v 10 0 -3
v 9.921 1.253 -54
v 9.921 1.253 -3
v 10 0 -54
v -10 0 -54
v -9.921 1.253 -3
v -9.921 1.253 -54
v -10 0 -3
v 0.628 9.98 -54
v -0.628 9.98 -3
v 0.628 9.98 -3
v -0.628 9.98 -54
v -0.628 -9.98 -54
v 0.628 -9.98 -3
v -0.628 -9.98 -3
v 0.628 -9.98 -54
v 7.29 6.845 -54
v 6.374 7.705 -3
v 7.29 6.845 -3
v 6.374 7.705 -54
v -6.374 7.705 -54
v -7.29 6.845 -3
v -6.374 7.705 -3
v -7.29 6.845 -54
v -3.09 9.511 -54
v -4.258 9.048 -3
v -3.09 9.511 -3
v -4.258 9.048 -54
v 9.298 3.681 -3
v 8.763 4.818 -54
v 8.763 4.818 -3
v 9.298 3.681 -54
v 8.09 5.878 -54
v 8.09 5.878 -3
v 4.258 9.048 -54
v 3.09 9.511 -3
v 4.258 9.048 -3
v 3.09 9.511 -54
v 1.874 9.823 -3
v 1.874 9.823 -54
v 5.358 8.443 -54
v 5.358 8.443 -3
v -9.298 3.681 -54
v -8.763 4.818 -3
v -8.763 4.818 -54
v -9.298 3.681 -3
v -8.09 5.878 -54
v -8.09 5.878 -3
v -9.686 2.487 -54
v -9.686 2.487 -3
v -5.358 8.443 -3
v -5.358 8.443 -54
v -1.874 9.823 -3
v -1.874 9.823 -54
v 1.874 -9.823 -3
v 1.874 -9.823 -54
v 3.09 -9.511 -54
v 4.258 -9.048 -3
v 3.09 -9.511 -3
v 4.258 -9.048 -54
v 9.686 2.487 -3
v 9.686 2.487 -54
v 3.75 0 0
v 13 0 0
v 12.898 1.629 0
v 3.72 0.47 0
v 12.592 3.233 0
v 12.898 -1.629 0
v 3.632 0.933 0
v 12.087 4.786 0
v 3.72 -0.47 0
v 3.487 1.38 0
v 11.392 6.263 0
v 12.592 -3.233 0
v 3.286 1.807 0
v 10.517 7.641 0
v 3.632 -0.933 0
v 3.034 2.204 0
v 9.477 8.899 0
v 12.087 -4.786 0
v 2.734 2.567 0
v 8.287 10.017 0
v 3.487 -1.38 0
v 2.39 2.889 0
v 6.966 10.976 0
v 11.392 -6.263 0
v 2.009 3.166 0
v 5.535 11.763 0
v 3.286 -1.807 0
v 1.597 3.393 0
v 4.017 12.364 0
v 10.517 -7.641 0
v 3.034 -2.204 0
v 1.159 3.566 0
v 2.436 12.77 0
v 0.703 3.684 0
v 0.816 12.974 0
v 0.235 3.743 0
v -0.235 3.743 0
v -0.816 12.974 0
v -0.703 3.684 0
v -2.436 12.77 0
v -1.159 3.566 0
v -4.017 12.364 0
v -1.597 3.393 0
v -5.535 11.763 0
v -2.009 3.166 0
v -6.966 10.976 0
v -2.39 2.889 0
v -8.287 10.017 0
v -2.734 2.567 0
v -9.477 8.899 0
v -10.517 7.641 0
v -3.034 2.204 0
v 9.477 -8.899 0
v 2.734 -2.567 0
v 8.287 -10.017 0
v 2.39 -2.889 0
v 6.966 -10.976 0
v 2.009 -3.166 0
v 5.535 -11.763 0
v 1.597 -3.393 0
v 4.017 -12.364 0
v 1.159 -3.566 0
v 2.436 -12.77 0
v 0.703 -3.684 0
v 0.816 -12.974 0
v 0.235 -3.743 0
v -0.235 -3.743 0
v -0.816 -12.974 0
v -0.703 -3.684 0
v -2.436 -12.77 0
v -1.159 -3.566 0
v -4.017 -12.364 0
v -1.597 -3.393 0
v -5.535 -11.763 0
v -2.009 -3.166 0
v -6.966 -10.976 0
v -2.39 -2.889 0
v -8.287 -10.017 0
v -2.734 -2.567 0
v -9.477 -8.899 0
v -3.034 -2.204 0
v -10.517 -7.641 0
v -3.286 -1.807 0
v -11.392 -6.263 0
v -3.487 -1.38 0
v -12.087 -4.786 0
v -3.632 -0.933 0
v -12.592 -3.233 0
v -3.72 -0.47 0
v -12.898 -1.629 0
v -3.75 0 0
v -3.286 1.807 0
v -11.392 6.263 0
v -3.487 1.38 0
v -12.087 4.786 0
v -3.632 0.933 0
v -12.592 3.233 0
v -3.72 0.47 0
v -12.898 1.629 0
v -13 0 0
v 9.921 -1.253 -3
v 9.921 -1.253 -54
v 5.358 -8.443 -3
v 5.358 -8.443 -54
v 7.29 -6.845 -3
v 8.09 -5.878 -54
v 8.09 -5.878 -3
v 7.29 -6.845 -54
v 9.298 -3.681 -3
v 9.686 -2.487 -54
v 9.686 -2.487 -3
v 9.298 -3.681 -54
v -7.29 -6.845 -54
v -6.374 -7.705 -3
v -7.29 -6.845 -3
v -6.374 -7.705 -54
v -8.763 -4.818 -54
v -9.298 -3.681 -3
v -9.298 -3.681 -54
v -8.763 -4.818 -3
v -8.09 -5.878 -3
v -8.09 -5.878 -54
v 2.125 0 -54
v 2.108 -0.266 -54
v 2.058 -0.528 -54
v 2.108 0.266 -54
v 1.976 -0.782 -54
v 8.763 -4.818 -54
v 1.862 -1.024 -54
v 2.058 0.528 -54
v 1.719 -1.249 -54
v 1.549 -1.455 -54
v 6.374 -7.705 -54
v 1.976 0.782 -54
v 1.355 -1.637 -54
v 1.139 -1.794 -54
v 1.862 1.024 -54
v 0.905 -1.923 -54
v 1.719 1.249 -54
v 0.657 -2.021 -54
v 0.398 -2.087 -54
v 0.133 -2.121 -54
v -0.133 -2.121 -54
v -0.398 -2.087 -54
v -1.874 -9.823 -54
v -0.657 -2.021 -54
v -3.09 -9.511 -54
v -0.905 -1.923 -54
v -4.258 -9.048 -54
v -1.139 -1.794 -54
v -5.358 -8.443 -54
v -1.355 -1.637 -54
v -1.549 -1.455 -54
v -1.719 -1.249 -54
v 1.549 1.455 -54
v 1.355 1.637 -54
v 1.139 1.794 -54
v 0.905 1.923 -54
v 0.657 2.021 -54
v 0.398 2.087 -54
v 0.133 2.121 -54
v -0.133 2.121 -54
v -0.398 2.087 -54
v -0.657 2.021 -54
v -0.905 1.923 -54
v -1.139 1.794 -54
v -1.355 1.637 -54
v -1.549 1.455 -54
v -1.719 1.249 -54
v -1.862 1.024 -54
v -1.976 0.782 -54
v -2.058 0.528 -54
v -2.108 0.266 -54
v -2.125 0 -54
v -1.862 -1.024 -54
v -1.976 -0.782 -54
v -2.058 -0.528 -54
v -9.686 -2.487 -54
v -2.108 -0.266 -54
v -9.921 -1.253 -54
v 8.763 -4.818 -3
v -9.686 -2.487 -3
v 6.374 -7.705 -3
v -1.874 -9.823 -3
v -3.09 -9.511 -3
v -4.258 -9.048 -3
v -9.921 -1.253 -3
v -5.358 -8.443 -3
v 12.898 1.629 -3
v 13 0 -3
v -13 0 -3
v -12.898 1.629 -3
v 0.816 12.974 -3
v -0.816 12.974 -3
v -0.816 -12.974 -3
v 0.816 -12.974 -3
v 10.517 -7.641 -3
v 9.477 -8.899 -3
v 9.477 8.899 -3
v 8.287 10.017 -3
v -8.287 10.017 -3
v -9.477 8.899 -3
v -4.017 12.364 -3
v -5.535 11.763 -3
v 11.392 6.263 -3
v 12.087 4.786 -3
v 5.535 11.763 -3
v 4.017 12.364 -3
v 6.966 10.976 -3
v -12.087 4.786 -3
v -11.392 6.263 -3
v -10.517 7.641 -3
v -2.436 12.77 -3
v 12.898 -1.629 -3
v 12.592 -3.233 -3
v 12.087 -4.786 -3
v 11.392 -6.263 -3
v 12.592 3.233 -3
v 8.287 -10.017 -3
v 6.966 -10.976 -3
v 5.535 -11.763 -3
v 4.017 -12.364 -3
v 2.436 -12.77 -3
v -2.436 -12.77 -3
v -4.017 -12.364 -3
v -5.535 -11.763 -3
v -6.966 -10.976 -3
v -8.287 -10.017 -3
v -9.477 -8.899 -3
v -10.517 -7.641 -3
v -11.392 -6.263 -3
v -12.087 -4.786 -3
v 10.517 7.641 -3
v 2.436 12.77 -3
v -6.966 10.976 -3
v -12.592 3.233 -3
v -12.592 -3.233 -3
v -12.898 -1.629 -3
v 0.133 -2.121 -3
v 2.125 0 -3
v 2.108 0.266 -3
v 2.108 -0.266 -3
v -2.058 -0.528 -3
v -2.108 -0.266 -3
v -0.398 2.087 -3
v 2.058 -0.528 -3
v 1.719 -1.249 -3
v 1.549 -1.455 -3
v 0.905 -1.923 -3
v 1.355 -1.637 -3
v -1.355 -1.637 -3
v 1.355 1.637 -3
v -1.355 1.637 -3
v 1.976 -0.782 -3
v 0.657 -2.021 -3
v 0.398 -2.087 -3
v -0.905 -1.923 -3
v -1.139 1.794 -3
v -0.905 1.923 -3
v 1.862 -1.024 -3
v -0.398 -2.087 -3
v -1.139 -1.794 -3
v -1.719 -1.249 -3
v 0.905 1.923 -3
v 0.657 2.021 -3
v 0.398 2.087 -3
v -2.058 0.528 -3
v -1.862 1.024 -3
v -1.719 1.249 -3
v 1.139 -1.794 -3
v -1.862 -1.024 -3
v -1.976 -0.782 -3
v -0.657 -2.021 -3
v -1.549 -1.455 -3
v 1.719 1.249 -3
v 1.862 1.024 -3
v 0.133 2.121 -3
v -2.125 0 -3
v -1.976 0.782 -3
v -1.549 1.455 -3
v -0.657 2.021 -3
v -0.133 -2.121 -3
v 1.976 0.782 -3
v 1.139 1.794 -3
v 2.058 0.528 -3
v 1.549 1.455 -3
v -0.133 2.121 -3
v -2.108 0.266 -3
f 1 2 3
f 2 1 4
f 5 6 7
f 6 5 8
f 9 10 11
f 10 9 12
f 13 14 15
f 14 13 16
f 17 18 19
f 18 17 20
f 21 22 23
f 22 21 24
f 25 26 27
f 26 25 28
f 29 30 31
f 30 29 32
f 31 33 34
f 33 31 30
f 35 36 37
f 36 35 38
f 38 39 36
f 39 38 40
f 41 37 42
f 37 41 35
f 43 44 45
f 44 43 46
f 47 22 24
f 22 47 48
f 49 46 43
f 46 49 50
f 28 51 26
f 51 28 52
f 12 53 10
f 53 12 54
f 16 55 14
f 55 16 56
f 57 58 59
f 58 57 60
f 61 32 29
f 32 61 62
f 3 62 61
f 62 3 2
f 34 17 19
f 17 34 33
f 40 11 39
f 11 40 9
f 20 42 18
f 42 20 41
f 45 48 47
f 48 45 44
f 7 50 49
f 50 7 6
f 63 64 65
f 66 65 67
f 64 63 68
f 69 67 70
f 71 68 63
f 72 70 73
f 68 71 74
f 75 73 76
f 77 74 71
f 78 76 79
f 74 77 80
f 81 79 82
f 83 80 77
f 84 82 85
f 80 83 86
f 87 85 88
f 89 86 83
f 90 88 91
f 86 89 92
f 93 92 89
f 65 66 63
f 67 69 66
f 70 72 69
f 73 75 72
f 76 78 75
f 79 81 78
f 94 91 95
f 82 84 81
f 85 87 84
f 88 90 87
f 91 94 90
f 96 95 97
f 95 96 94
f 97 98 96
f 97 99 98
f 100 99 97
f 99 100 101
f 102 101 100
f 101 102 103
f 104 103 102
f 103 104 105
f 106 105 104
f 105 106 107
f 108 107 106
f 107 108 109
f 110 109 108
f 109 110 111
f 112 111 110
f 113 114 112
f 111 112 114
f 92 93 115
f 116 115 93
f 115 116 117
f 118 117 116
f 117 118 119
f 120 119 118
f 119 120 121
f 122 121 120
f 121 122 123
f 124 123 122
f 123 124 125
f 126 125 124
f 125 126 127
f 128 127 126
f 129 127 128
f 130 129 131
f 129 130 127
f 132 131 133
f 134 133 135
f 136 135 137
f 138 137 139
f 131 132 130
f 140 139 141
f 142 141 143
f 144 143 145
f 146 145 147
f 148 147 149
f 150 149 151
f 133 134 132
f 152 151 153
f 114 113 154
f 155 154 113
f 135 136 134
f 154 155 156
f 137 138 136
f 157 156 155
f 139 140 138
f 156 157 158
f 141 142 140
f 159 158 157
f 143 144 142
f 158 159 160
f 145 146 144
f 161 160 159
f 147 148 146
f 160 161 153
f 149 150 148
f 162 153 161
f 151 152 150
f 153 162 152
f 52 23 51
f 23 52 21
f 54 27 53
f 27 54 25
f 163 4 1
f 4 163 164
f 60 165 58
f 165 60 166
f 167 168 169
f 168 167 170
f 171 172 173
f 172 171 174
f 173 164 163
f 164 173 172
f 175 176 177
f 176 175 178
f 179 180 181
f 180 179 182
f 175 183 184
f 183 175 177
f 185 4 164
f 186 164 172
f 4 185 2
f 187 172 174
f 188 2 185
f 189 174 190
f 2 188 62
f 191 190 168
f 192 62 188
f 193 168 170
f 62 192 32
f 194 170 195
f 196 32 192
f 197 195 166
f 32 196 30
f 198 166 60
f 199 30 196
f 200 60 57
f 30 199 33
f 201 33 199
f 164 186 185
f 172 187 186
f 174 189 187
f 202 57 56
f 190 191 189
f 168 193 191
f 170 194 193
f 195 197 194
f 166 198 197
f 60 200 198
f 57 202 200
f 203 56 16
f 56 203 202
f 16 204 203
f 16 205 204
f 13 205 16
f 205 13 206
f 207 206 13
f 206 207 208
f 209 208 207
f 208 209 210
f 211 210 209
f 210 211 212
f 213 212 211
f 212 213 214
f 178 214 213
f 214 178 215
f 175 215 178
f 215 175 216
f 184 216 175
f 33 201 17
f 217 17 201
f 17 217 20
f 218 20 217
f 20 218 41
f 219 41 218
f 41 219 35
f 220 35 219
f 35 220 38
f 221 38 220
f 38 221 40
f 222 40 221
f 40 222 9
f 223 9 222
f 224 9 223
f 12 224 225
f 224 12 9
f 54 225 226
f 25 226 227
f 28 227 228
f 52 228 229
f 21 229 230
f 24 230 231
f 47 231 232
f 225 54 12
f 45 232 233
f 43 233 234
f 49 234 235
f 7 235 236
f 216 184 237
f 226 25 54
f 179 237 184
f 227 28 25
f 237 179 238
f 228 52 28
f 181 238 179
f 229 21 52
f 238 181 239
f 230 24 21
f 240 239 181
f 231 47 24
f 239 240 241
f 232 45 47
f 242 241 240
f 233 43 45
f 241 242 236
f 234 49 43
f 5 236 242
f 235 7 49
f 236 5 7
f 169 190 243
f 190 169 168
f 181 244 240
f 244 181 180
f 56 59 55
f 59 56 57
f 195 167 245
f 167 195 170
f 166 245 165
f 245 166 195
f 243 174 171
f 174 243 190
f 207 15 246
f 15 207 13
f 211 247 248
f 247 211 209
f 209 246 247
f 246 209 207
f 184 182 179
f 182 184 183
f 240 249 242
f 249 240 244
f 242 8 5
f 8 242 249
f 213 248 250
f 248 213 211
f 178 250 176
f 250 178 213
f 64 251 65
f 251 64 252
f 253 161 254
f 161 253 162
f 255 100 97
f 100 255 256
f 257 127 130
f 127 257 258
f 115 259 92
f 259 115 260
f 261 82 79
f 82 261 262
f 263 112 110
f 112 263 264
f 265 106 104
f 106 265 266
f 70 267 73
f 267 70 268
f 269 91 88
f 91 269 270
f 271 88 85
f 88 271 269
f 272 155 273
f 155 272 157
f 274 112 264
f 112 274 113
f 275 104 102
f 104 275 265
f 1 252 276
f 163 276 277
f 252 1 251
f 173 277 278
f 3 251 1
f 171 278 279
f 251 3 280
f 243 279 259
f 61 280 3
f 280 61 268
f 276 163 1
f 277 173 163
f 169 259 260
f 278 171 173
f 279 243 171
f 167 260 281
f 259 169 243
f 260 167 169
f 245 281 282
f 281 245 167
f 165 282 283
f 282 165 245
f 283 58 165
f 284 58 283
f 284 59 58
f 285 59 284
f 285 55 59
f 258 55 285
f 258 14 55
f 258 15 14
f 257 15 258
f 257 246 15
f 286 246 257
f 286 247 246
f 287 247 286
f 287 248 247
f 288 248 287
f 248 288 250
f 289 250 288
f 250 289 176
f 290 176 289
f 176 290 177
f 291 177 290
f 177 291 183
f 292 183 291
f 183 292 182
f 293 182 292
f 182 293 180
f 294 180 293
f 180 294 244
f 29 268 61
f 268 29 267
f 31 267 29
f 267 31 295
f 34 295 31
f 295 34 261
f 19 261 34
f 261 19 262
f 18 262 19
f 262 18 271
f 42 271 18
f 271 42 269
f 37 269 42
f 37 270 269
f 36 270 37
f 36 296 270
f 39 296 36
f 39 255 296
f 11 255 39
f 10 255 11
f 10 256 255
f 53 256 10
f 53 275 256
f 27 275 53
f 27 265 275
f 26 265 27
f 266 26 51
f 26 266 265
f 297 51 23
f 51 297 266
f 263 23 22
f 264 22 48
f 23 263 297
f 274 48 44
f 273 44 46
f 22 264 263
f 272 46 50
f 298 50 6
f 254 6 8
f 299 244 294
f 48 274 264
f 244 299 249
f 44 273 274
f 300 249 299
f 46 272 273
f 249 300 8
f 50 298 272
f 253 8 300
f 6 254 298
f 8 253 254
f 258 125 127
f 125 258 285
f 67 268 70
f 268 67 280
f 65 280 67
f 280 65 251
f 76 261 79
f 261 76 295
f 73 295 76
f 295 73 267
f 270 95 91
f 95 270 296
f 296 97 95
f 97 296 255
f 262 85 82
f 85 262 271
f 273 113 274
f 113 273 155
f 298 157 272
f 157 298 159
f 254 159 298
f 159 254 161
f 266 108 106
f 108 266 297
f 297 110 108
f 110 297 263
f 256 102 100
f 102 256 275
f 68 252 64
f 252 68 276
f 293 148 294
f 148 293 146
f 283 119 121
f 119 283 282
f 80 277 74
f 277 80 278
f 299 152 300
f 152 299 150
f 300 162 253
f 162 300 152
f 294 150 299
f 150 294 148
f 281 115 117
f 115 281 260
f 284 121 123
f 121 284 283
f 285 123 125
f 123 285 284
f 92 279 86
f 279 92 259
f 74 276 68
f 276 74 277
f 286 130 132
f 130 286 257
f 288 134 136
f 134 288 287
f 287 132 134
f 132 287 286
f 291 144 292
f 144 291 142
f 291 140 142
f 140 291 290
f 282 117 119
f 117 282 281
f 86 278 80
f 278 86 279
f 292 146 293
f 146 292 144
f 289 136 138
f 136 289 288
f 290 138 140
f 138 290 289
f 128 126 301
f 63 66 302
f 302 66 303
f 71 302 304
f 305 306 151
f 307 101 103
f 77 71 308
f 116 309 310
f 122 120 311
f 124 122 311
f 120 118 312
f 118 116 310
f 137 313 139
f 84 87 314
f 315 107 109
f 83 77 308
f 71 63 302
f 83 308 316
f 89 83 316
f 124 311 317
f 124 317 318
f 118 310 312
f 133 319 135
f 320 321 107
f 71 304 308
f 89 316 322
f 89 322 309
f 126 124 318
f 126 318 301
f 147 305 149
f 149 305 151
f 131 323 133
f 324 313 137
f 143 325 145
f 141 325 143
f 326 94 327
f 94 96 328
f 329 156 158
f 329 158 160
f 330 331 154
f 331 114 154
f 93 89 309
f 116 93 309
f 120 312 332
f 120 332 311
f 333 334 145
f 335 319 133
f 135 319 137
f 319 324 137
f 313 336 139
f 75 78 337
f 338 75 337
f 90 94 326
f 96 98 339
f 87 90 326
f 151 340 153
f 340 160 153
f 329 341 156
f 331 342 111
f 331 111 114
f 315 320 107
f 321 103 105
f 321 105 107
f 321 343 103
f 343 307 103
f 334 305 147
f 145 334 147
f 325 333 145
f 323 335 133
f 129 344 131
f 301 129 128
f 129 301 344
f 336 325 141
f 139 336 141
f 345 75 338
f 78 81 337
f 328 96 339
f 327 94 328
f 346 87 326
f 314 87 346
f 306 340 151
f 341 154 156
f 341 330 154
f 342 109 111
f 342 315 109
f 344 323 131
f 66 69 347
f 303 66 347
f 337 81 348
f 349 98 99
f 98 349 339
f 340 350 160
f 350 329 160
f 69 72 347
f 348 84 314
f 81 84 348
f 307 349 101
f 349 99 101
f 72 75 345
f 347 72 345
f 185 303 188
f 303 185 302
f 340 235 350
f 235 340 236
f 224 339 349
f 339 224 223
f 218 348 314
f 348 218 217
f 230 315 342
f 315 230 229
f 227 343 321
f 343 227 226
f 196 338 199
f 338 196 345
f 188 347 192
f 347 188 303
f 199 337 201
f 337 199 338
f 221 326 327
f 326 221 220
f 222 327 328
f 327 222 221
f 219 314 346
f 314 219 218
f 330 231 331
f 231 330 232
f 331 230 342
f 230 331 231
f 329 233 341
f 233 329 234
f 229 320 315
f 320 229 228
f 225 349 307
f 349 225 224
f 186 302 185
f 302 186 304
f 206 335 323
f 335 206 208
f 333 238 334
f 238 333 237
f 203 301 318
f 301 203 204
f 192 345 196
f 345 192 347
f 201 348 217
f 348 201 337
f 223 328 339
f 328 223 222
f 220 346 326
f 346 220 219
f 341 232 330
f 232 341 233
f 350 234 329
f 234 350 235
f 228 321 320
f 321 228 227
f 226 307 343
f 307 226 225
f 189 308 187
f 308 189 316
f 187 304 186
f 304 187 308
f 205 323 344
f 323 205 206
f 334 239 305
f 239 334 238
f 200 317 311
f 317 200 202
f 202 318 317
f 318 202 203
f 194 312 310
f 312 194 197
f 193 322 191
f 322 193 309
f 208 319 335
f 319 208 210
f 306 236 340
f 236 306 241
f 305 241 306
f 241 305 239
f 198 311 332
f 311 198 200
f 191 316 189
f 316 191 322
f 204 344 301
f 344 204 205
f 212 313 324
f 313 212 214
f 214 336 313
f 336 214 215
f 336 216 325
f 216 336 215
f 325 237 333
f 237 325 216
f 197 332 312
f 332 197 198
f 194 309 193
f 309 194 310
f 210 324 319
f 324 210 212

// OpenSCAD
$fn = 50;


difference() {
	union() {
		translate(v = [0, 0, -54.0000000000]) {
			cylinder(h = 54, r = 10.0000000000);
		}
		translate(v = [0, 0, -3.0000000000]) {
			cylinder(h = 3, r = 13.0000000000);
		}
	}
	union() {
		translate(v = [0, 0, 0]) {
			rotate(a = [0, 0, 0]) {
				difference() {
					union() {
						#translate(v = [0, 0, -54.0000000000]) {
							cylinder(h = 54, r = 2.0000000000);
						}
						#translate(v = [0, 0, -3]) {
							cylinder(h = 3, r = 10.0000000000, r1 = 2.1250000000, r2 = 3.7500000000);
						}
						#translate(v = [0, 0, -54.0000000000]) {
							cylinder(h = 54, r = 2.1250000000);
						}
						#translate(v = [0, 0, -54.0000000000]) {
							cylinder(h = 54, r = 2.0000000000);
						}
					}
					union();
				}
			}
		}
	}
}
